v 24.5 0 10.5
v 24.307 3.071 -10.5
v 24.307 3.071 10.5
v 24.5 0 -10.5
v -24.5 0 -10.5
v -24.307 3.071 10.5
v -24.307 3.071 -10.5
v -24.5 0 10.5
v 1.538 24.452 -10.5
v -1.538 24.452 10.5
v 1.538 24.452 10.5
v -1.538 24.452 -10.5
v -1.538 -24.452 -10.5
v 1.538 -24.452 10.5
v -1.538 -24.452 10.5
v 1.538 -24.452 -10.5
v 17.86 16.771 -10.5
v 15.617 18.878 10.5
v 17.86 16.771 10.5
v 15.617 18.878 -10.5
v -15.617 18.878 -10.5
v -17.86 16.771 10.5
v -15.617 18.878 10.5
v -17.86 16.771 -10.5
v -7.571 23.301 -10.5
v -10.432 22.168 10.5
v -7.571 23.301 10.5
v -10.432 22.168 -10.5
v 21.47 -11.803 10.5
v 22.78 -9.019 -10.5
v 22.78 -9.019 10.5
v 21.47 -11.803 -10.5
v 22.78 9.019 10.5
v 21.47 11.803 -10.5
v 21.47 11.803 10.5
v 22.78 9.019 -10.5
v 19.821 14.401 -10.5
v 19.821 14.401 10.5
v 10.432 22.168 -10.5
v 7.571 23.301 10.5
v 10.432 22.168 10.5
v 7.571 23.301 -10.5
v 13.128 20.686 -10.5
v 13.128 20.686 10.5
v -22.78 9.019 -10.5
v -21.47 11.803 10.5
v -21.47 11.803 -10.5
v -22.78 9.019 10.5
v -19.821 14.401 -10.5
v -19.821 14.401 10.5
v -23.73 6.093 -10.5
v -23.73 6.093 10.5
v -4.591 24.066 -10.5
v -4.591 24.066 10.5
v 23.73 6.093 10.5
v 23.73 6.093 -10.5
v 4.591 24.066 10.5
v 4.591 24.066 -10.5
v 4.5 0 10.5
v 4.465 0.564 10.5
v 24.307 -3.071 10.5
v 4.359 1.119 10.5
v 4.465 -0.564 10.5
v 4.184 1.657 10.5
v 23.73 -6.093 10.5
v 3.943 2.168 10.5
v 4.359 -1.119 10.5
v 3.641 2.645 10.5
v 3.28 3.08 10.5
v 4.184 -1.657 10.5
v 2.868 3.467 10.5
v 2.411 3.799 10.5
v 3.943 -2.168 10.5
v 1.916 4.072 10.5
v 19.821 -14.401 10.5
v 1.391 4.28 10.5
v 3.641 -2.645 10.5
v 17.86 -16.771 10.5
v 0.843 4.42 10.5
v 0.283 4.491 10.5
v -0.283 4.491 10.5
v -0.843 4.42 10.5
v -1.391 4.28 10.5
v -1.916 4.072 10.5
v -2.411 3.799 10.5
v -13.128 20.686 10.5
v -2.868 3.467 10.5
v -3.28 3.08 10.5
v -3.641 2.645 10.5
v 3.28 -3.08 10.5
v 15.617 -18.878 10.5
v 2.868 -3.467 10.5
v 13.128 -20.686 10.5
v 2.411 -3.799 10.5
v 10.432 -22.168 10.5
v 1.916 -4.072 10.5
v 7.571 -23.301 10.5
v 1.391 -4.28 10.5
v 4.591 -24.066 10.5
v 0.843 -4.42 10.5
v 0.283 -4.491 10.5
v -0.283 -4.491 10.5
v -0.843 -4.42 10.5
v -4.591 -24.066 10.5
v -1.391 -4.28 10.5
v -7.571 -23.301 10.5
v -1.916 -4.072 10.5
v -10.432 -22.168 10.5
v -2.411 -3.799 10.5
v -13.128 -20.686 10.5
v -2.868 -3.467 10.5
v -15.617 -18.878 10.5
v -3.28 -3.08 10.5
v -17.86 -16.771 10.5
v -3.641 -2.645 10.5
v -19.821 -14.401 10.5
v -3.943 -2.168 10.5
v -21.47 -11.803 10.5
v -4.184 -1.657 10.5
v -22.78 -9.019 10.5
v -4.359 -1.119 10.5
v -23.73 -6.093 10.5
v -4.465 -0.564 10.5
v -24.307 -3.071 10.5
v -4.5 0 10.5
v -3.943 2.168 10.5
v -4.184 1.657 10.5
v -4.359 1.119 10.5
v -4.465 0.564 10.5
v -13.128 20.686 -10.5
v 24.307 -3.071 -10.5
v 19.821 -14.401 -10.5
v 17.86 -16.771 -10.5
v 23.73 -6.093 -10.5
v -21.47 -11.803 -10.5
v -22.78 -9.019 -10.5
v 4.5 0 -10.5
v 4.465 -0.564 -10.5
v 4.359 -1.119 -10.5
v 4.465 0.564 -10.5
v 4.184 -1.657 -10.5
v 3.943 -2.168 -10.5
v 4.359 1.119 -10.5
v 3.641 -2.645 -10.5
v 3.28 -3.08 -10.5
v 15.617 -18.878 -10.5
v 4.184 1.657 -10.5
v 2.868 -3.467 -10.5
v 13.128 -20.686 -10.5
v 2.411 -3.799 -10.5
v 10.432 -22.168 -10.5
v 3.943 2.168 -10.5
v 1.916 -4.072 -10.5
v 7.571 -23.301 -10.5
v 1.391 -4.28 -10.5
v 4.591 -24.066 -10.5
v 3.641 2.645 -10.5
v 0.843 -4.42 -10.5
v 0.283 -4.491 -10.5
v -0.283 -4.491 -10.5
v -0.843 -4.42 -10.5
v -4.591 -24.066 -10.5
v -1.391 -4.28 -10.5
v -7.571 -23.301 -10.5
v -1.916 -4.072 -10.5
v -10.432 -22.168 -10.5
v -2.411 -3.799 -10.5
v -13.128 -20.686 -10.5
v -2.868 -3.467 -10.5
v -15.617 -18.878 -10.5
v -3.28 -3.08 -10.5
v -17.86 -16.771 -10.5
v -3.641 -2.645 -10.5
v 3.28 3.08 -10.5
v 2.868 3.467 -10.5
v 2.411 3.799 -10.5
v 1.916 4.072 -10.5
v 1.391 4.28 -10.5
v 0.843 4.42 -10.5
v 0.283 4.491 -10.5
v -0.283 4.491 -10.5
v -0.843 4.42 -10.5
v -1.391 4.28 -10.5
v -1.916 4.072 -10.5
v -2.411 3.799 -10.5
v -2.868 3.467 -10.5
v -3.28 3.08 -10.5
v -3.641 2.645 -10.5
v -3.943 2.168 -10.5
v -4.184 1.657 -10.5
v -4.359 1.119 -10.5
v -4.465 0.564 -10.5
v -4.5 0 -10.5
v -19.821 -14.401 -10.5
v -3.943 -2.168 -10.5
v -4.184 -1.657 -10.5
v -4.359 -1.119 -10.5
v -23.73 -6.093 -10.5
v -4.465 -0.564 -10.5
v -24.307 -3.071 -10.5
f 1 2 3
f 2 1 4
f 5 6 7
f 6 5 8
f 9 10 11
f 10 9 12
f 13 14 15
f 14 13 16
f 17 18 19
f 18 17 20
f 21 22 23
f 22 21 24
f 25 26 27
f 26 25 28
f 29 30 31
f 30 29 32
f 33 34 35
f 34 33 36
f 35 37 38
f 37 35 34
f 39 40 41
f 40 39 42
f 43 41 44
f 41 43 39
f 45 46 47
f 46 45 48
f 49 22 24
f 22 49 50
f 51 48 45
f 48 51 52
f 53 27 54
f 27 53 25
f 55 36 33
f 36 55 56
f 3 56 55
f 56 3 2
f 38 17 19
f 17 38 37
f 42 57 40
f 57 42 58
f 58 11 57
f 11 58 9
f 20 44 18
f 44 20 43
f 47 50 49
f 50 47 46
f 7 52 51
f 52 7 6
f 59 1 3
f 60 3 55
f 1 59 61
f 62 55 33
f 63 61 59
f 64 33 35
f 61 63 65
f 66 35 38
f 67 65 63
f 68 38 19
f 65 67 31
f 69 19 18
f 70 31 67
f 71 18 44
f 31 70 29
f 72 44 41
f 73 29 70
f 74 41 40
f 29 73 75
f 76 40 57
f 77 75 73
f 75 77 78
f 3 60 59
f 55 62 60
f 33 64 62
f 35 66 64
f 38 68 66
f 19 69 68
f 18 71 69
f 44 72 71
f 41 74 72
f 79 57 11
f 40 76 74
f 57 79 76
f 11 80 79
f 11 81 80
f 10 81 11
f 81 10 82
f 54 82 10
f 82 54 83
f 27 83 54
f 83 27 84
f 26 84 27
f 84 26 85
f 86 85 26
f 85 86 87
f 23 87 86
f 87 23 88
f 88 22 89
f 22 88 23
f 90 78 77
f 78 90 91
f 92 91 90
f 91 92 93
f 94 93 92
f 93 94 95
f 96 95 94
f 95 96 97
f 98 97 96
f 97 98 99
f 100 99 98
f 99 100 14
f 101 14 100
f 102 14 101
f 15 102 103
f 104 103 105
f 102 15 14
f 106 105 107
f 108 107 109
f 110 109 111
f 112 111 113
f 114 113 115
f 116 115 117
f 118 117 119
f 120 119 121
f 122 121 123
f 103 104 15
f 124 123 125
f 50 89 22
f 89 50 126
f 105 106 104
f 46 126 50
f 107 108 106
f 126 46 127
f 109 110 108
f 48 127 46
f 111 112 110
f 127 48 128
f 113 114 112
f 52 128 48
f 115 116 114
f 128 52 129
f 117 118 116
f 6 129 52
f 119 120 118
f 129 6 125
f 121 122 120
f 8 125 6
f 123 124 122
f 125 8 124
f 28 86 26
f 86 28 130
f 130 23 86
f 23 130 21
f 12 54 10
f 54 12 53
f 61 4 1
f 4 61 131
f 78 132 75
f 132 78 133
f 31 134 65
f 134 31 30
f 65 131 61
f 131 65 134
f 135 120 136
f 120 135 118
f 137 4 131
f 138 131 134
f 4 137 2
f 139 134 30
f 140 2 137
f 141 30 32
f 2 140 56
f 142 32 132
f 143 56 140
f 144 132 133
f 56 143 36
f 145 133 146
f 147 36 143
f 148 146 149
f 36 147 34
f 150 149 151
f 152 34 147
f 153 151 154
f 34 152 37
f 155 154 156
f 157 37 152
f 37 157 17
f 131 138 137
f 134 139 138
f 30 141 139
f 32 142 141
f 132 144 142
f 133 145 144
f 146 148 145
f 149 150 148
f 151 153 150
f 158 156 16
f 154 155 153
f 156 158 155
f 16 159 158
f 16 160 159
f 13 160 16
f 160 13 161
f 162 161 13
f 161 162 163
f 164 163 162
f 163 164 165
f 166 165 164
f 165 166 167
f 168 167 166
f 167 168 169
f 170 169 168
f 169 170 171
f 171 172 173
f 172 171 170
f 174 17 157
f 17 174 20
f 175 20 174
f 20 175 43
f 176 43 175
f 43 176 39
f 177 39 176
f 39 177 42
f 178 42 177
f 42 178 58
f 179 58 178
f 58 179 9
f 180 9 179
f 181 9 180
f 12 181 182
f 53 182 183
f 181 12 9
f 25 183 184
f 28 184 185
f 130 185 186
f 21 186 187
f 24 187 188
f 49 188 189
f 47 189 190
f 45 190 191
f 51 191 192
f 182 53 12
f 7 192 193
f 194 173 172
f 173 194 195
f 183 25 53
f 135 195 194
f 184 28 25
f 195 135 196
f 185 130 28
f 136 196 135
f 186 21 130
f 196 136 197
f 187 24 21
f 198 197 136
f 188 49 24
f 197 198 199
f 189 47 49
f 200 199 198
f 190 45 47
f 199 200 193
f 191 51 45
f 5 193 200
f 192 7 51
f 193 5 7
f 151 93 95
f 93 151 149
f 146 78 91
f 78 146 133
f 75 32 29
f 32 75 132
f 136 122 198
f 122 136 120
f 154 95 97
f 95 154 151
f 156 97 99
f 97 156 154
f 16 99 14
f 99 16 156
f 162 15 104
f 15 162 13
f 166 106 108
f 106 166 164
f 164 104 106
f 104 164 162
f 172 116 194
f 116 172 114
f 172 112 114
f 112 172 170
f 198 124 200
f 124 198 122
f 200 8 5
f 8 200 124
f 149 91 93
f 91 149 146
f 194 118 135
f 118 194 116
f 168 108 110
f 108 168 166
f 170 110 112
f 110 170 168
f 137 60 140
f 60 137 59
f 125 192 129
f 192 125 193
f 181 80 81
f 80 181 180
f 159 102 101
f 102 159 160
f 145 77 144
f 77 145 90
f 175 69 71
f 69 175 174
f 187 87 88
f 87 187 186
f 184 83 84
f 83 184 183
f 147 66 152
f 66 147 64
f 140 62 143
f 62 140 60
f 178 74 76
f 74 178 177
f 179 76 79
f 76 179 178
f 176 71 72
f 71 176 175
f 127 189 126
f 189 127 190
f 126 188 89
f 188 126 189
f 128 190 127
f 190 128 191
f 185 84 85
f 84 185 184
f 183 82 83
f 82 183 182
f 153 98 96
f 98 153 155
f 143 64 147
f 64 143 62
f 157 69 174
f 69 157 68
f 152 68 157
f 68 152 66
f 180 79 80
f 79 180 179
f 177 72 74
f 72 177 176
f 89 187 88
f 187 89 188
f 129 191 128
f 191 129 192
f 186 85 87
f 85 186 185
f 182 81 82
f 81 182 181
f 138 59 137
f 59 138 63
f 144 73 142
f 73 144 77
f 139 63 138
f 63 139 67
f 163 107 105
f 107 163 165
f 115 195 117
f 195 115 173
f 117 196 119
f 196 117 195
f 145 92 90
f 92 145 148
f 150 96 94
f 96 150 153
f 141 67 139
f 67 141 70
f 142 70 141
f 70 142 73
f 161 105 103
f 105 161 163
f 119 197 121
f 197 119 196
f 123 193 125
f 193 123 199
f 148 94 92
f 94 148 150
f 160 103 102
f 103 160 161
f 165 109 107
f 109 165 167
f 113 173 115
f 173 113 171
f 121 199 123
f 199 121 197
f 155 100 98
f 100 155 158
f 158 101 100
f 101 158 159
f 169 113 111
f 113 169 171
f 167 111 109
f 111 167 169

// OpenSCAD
$fn = 50;


difference() {
	union() {
		translate(v = [0, 0, -10.5000000000]) {
			cylinder(h = 21, r = 24.5000000000);
		}
	}
	union() {
		translate(v = [0, 0, -100.0000000000]) {
			cylinder(h = 200, r = 4.5000000000);
		}
	}
}
